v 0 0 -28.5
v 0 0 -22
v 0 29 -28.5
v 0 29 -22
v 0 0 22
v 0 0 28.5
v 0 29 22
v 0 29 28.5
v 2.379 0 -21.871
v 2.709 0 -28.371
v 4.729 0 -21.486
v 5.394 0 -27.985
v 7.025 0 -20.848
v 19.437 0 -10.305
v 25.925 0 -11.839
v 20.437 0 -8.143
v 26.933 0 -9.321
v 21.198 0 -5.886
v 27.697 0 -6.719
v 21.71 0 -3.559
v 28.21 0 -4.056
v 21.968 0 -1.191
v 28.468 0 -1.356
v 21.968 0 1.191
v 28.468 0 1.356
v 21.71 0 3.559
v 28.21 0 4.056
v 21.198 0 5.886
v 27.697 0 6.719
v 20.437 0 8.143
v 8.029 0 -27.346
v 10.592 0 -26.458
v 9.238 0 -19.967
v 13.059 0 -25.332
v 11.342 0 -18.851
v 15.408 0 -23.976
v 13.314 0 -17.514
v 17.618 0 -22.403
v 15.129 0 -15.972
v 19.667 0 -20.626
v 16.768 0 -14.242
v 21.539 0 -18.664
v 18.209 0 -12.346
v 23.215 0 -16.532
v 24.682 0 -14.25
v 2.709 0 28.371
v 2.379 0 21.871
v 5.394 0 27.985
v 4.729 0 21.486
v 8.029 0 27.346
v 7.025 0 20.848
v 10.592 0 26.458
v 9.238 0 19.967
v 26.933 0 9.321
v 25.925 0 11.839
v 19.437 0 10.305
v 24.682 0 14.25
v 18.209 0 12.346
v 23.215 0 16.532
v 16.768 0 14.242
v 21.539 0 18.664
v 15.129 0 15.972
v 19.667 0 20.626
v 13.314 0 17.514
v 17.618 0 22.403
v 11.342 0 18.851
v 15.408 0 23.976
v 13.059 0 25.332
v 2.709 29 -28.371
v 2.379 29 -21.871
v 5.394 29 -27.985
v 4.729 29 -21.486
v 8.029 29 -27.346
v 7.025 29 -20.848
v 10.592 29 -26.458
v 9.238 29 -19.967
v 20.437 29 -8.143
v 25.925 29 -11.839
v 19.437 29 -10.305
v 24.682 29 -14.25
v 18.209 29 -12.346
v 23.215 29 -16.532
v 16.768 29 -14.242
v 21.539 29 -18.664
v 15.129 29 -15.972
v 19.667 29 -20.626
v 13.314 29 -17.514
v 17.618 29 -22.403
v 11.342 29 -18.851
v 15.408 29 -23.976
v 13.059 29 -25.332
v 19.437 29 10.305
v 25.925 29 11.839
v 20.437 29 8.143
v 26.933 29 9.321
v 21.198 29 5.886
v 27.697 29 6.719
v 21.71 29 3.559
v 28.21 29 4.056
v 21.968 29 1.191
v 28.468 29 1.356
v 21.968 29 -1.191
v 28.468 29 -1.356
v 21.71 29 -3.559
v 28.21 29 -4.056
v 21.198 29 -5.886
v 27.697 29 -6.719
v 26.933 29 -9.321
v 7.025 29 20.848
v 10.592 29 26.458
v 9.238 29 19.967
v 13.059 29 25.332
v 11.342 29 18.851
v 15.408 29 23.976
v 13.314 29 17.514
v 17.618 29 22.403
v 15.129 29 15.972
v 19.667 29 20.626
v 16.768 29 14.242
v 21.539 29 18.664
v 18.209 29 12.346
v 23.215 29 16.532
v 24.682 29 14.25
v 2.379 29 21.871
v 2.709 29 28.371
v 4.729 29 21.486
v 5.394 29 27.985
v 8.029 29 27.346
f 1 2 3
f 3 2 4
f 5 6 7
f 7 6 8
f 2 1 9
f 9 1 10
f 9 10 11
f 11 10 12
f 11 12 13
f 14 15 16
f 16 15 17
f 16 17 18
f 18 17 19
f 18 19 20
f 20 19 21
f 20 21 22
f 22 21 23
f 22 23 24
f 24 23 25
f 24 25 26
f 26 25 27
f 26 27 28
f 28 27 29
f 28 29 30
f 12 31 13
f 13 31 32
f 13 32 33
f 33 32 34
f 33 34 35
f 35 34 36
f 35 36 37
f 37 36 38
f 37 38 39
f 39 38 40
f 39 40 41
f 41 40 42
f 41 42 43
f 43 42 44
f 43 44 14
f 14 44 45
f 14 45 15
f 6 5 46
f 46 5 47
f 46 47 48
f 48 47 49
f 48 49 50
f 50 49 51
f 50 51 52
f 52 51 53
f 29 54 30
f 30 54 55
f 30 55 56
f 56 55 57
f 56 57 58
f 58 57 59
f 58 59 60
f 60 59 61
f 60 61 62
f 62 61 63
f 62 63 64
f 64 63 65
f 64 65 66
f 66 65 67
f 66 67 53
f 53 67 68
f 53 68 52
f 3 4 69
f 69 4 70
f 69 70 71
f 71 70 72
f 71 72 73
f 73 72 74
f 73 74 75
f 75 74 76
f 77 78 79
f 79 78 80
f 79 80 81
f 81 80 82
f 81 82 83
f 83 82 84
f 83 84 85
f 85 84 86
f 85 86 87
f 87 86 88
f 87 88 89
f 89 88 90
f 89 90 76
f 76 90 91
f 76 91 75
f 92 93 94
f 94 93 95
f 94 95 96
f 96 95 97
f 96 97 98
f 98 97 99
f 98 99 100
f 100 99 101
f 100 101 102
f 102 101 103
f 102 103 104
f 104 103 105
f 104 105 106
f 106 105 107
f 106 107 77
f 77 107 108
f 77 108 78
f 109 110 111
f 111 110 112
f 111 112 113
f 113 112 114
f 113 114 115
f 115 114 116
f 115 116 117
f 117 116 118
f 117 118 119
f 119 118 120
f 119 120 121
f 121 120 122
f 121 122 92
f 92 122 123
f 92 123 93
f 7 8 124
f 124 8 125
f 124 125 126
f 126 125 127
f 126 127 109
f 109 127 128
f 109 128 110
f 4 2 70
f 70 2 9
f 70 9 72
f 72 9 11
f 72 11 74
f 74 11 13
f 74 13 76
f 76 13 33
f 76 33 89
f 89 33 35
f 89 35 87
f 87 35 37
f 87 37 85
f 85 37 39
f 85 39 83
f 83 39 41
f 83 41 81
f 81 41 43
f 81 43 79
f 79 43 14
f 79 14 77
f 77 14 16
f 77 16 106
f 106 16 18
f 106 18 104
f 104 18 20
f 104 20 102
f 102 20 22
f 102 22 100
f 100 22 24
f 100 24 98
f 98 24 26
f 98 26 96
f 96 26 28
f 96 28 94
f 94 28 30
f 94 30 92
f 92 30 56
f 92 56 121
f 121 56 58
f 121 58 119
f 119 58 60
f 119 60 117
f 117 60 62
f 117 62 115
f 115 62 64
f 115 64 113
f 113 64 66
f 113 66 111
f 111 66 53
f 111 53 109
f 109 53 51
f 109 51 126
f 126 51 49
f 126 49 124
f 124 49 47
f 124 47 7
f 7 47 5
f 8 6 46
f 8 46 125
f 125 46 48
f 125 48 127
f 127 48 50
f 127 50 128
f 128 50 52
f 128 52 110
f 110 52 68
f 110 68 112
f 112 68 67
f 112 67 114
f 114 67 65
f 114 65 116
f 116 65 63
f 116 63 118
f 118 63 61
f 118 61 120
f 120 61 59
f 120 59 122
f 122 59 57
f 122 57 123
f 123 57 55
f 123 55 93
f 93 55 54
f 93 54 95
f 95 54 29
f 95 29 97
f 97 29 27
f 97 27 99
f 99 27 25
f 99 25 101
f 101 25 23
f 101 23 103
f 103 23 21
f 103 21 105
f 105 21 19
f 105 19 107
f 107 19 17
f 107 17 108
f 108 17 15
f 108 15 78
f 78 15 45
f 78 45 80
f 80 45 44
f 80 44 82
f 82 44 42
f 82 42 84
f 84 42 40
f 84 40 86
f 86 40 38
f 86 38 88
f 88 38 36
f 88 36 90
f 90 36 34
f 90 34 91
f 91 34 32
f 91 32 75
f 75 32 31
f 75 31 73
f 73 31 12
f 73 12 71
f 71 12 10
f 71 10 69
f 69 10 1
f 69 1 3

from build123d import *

# Parameters (mm, degrees)
SKETCH1_R                = 28.5
SKETCH1_R_2              = 22
BOSS_EXTRUDE1_DEPTH      = 29
SPLIT1_SURFACE_1_BACK    = 86.668
SPLIT1_SURFACE_1_DEPTH   = 173.336
SPLIT1_SURFACE_2_BACK    = 86.668
SPLIT1_SURFACE_2_DEPTH   = 173.336
BODY_DELETE_KEEP_1_DEPTH = 29


# Read off the part's stored shape, not the designer's step: Body-Delete/Keep 1
with BuildPart() as part:
    # Sketch1 → Boss-Extrude1 (new body)
    with BuildSketch(Plane(origin=(0, 0, 0), x_dir=(1, 0, 0), z_dir=(0, 1, 0))):
        with Locations(Location((0, 0, 0), (0, 0, 270))):
            Circle(SKETCH1_R)
        with Locations(Location((0, 0, 0), (0, 0, 270))):
            Circle(SKETCH1_R_2, mode=Mode.SUBTRACT)
    extrude(amount=BOSS_EXTRUDE1_DEPTH)


with BuildPart() as body_2:
    # Split1: the piece behind the surface
    add(part.part)
    # Split1 surface: a surface, the sketch's curves swept straight by 173.336 mm
    with BuildLine(Plane.XY.offset(-SPLIT1_SURFACE_1_BACK), mode=Mode.PRIVATE) as split1_surface_1_path:
        Line((0, 33.955759062), (0, -6.102624859))
    split1_surface_1 = Shell.extrude(split1_surface_1_path.wire(), (0 * SPLIT1_SURFACE_1_DEPTH, 0 * SPLIT1_SURFACE_1_DEPTH, 1 * SPLIT1_SURFACE_1_DEPTH))
    split(bisect_by=split1_surface_1, keep=Keep.BOTTOM)

    # Body-Delete/Keep 1 outline → Body-Delete/Keep 1 (cut)
    with BuildSketch(Plane(origin=(0, 0, 0), x_dir=(1, 0, 0), z_dir=(0, 1, 0))):
        with BuildLine():
            Line((0, -28.5), (0, -22))
            ThreePointArc((0, -22), (-22, 0), (0, 22))
            Line((0, 22), (0, 28.5))
            ThreePointArc((0, 28.5), (-28.5, 0), (0, -28.5))
        make_face()
    extrude(amount=BODY_DELETE_KEEP_1_DEPTH, mode=Mode.SUBTRACT)


with BuildPart() as part_1:
    add(part.part)

    # Split1: split by a surface, the side it looks to stays
    # Split1 surface: a surface, the sketch's curves swept straight by 173.336 mm
    with BuildLine(Plane.XY.offset(-SPLIT1_SURFACE_2_BACK), mode=Mode.PRIVATE) as split1_surface_2_path:
        Line((0, 33.955759062), (0, -6.102624859))
    split1_surface_2 = Shell.extrude(split1_surface_2_path.wire(), (0 * SPLIT1_SURFACE_2_DEPTH, 0 * SPLIT1_SURFACE_2_DEPTH, 1 * SPLIT1_SURFACE_2_DEPTH))
    split(bisect_by=split1_surface_2, keep=Keep.TOP)


solid = part_1.part
